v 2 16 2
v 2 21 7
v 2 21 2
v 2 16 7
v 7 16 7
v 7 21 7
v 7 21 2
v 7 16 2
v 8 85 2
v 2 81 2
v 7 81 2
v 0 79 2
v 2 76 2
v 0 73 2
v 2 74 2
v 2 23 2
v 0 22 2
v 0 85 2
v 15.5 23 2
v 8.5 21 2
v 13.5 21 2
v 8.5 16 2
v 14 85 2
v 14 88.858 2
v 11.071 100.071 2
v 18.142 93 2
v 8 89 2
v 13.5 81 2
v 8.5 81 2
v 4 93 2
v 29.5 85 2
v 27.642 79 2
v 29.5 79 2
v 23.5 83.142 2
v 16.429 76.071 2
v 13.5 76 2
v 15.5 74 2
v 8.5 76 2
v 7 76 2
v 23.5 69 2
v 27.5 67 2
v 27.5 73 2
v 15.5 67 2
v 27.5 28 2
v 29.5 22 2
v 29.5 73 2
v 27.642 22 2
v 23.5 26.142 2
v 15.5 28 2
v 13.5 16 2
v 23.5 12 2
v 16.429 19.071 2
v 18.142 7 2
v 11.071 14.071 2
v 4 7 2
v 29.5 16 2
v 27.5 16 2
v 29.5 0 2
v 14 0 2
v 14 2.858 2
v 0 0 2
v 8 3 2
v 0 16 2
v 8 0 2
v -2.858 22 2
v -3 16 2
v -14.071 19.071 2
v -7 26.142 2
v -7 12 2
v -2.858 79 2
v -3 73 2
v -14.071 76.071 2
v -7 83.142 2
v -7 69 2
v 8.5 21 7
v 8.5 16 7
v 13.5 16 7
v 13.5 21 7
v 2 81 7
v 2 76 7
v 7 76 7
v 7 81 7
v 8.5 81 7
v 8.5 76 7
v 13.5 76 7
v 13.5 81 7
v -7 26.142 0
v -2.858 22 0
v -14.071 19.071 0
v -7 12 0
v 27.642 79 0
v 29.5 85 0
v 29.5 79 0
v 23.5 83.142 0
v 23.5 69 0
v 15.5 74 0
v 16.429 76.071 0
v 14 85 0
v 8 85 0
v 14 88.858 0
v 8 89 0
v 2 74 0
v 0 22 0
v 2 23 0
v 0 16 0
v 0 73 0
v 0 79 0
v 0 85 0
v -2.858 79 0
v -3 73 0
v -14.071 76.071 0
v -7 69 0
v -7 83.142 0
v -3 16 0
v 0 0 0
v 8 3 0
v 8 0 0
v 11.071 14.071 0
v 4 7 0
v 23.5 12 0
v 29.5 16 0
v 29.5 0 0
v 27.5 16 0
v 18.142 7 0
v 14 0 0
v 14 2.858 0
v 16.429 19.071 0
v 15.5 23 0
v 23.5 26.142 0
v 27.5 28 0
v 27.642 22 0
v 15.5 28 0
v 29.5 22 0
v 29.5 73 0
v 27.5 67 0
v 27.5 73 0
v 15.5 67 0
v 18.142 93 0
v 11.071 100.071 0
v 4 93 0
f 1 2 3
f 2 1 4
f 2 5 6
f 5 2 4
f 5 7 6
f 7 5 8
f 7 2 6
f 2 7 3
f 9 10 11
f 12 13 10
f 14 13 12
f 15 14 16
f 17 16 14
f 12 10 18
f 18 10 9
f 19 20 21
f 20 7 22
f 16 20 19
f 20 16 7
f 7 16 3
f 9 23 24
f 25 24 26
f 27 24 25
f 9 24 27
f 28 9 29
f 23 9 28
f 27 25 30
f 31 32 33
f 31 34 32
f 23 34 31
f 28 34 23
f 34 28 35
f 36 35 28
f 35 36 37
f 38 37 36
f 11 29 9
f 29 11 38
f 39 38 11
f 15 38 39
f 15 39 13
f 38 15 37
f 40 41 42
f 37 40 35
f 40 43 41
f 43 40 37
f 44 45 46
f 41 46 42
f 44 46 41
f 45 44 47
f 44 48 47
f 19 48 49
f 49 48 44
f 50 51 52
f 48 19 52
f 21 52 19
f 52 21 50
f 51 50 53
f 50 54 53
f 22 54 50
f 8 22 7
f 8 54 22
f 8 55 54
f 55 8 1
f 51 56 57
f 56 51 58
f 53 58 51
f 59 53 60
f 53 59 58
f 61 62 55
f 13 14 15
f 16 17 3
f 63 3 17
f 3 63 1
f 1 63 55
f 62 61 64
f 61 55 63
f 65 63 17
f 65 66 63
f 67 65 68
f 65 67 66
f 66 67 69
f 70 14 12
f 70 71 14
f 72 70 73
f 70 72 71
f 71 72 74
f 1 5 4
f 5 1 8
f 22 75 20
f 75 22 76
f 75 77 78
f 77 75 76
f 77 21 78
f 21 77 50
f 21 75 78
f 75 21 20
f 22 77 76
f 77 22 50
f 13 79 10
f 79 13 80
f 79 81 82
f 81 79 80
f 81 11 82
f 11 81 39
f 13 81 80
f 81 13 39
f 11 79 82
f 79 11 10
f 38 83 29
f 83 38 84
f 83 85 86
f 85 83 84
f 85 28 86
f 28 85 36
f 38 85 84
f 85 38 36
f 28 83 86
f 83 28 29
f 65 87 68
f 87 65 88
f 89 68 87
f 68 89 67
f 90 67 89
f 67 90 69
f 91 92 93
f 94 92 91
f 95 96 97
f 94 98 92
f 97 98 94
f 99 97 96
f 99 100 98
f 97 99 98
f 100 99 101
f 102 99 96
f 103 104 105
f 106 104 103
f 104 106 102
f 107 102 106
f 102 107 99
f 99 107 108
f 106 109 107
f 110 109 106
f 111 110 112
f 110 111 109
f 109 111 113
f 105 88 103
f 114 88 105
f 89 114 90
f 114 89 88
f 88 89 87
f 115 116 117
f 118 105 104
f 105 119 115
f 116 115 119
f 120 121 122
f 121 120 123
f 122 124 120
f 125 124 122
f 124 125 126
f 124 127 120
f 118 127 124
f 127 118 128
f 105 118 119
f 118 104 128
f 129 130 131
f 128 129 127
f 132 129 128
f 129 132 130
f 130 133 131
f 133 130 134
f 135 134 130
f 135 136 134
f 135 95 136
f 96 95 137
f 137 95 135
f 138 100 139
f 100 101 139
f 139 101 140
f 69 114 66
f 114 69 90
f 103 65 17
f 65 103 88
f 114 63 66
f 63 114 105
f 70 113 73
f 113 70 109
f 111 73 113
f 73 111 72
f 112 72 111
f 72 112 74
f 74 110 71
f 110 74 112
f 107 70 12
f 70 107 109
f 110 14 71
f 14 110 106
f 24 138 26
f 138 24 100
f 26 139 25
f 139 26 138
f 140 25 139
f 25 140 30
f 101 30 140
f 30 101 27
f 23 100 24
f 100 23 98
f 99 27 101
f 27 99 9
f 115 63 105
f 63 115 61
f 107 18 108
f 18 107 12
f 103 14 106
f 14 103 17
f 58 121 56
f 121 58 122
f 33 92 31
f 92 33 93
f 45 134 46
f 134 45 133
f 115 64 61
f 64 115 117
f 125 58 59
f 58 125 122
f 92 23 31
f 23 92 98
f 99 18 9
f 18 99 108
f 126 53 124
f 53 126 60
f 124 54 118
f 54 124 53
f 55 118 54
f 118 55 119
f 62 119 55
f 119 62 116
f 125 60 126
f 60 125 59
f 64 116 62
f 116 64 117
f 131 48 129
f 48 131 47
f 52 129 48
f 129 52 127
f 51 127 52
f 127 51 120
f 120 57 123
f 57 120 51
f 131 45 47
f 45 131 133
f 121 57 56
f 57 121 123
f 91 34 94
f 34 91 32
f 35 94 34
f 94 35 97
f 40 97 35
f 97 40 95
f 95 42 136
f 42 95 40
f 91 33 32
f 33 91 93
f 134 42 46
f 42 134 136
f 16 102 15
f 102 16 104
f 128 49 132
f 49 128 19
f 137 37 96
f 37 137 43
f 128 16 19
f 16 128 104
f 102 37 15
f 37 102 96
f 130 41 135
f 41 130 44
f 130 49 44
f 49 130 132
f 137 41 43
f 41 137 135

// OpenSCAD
pi_width=65;

arrow_diag=14;
arrow_spacing=1;
arrow_depth=arrow_diag+arrow_spacing;
entry_depth=arrow_depth-arrow_spacing;

plug_size=5;
plug_gap=1.5;
plug_total_size=plug_size+plug_gap+plug_size;

spacing=2;

base_height=2;

base_width=entry_depth+spacing+pi_width+spacing+spacing;
base_depth=spacing+plug_total_size+spacing+entry_depth;

module arrow_up() {
  translate([8,0,0]) 
  union() {
    rotate([0,0,45]) cube([10,10,base_height]);
    translate([4,4,0]) cube([4,6,base_height]);
  }
}

module arrow_left() {
  translate([4,16,0]) rotate([0,0,270]) arrow_up();
}

module entry_up() {
  difference() {
    arrow_up();
    translate([14,14,0]) cube([3,6,base_height]);
  }
}

module entry_left() { 
  translate([0,arrow_spacing*-1,0]) difference() {
    arrow_left();
    translate([14,14,0]) cube([3,6,base_height]);
  }
}

module pi_plug() {
   union() { 
      translate([0,0,base_height]) cube([plug_size,plug_size,plug_size]);
      translate([plug_gap+plug_size,0,base_height]) cube([plug_size,plug_size,plug_size]);
      translate([0,pi_width-plug_size,base_height]) cube([plug_size,plug_size,plug_size]);
      translate([plug_gap+plug_size,pi_width-plug_size,base_height]) cube([plug_size,plug_size,plug_size]);
   }
}

difference() {
  union() {
    cube([base_depth,base_width,base_height]);
      
    translate([spacing,entry_depth+spacing,0]) pi_plug();
      
    translate([arrow_depth*-1,entry_depth-spacing,0]) arrow_up();
    translate([arrow_depth*-1,base_width-entry_depth-spacing,0]) arrow_up();
    translate([0,base_width,0]) arrow_left();
  }
    
  translate([0,0,0]) 
    entry_left();
  translate([base_depth-entry_depth,entry_depth-spacing,0]) 
    entry_up();
  translate([base_depth-entry_depth,base_width-arrow_diag-spacing,0])  
    entry_up();
  
  translate([spacing,entry_depth+spacing+plug_size+spacing,0])
    cube([plug_total_size+spacing,pi_width-plug_size*2-spacing*2,base_height]);
   
  translate([base_depth-spacing-entry_depth,entry_depth*2,0])
    cube([arrow_diag,base_width-entry_depth*3-spacing*2,base_height]);
}
